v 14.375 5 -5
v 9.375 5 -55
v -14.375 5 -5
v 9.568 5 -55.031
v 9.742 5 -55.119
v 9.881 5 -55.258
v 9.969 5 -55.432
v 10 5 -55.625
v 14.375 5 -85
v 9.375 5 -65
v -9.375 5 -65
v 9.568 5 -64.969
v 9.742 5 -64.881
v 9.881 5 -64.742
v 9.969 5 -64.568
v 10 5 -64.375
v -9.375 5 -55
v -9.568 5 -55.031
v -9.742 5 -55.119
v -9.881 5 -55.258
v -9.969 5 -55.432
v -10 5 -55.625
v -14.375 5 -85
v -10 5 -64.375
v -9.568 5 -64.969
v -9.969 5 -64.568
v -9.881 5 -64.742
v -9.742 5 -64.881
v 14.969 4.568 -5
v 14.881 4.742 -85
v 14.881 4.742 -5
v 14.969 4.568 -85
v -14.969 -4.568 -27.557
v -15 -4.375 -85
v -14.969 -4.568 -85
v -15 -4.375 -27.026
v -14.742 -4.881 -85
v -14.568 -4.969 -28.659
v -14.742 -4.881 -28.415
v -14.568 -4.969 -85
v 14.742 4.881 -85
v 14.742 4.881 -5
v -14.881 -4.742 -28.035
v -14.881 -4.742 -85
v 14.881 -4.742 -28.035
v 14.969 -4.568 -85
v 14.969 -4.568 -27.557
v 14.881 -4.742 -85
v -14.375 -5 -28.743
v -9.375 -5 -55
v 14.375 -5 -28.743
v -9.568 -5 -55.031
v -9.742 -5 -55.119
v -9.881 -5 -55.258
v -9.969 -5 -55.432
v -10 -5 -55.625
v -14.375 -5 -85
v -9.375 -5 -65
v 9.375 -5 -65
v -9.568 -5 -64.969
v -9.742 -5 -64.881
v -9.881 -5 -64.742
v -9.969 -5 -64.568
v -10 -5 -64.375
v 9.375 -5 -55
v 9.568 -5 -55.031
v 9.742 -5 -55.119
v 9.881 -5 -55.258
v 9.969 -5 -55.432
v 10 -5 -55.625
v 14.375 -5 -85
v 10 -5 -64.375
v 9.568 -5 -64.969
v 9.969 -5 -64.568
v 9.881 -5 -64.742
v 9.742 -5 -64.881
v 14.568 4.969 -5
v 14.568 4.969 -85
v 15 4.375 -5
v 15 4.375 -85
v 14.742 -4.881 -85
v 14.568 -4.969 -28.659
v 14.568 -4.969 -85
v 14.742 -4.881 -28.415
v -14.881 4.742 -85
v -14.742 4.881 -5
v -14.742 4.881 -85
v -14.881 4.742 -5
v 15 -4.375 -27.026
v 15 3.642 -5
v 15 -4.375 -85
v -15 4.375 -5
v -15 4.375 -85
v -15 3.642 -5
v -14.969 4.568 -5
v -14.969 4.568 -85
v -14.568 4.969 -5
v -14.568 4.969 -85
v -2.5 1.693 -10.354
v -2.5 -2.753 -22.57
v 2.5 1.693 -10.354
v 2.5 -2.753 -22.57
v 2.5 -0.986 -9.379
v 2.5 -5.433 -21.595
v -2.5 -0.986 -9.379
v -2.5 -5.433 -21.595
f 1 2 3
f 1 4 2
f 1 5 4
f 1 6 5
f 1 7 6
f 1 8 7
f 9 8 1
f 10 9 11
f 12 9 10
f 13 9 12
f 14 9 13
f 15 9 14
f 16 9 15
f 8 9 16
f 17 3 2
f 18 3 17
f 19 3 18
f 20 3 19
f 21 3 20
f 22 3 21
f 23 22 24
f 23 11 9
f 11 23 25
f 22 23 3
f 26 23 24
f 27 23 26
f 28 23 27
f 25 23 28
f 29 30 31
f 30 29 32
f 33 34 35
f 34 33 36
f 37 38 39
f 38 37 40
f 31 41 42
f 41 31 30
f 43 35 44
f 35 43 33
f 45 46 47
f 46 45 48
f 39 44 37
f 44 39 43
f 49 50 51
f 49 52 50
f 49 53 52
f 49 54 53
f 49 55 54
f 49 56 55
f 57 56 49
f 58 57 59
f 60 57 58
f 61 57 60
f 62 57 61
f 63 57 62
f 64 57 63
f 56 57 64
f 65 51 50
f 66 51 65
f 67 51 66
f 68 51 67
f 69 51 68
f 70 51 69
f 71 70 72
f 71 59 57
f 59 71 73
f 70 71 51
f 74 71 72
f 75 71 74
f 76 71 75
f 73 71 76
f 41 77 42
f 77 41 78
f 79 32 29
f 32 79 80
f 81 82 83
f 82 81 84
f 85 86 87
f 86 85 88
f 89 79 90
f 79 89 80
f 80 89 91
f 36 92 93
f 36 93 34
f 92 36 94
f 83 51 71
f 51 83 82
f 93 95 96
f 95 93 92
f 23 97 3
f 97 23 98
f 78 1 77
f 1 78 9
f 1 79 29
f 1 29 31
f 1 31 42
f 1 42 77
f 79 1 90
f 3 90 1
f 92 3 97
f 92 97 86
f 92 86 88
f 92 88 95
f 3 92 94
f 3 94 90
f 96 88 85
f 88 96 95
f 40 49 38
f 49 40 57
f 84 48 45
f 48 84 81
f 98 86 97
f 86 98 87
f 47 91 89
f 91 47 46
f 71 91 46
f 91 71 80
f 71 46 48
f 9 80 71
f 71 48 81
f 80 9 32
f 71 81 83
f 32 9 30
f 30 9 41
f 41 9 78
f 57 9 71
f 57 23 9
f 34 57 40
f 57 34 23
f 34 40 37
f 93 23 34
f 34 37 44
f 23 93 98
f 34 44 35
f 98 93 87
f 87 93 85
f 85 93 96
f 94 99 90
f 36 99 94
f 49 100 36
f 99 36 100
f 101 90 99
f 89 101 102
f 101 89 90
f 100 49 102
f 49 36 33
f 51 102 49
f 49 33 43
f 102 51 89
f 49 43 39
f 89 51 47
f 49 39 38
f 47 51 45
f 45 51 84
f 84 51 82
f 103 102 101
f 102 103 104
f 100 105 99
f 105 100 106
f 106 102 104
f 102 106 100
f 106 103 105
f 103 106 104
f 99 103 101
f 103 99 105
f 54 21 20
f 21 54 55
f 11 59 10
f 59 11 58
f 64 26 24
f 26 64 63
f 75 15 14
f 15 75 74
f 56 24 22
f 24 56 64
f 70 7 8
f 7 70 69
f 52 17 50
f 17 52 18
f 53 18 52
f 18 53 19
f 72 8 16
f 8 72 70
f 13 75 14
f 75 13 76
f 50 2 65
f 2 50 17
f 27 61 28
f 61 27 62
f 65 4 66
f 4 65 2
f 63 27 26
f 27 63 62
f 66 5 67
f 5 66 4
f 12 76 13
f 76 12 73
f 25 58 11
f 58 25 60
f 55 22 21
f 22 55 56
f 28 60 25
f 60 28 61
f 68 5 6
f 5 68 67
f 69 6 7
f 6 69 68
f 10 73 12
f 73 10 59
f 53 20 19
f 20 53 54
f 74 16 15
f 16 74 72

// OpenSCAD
$fn = 100;
translate(v = [0, 0, -40])
{
  difference()
  {
    union()
    {
      translate(v = [0, 0, -45])
      {
        difference()
        {
          linear_extrude(height = 80, center = false, convexity = undef, twist = undef, slices = undef, scale = 1, $fn = 20)
          {
            translate(v = [-15, -5])
            {
              hull()
              {
                translate(v = [0.625, 0.625])
                {
                  circle(r = 0.625);
                }
                translate(v = [29.375, 0.625])
                {
                  circle(r = 0.625);
                }
                translate(v = [29.375, 9.375])
                {
                  circle(r = 0.625);
                }
                translate(v = [0.625, 9.375])
                {
                  circle(r = 0.625);
                }
              }
            }
          }
          translate(v = [0, -7, 0])
          {
            translate(v = [0, 0, 80])
            {
              rotate(a = 250, v = [1, 0, 0])
              {
                cube(size = [60, 60, 20], center = true);
              }
            }
          }
        }
      }
      translate(v = [0, -1.8, 0])
      {
        translate(v = [0, 0, 24])
        {
          rotate(a = 250, v = [1, 0, 0])
          {
            cube(size = [5, 13, 3], center = true);
          }
        }
      }
    }
    translate(v = [0, 10, 0])
    {
      translate(v = [0, 0, -20])
      {
        rotate(a = 90, v = [1, 0, 0])
        {
          linear_extrude(height = 20, center = false, convexity = undef, twist = undef, slices = undef, scale = 1, $fn = 20)
          {
            translate(v = [-10, -5])
            {
              hull()
              {
                translate(v = [0.625, 0.625])
                {
                  circle(r = 0.625);
                }
                translate(v = [19.375, 0.625])
                {
                  circle(r = 0.625);
                }
                translate(v = [19.375, 9.375])
                {
                  circle(r = 0.625);
                }
                translate(v = [0.625, 9.375])
                {
                  circle(r = 0.625);
                }
              }
            }
          }
        }
      }
    }
  }
}
